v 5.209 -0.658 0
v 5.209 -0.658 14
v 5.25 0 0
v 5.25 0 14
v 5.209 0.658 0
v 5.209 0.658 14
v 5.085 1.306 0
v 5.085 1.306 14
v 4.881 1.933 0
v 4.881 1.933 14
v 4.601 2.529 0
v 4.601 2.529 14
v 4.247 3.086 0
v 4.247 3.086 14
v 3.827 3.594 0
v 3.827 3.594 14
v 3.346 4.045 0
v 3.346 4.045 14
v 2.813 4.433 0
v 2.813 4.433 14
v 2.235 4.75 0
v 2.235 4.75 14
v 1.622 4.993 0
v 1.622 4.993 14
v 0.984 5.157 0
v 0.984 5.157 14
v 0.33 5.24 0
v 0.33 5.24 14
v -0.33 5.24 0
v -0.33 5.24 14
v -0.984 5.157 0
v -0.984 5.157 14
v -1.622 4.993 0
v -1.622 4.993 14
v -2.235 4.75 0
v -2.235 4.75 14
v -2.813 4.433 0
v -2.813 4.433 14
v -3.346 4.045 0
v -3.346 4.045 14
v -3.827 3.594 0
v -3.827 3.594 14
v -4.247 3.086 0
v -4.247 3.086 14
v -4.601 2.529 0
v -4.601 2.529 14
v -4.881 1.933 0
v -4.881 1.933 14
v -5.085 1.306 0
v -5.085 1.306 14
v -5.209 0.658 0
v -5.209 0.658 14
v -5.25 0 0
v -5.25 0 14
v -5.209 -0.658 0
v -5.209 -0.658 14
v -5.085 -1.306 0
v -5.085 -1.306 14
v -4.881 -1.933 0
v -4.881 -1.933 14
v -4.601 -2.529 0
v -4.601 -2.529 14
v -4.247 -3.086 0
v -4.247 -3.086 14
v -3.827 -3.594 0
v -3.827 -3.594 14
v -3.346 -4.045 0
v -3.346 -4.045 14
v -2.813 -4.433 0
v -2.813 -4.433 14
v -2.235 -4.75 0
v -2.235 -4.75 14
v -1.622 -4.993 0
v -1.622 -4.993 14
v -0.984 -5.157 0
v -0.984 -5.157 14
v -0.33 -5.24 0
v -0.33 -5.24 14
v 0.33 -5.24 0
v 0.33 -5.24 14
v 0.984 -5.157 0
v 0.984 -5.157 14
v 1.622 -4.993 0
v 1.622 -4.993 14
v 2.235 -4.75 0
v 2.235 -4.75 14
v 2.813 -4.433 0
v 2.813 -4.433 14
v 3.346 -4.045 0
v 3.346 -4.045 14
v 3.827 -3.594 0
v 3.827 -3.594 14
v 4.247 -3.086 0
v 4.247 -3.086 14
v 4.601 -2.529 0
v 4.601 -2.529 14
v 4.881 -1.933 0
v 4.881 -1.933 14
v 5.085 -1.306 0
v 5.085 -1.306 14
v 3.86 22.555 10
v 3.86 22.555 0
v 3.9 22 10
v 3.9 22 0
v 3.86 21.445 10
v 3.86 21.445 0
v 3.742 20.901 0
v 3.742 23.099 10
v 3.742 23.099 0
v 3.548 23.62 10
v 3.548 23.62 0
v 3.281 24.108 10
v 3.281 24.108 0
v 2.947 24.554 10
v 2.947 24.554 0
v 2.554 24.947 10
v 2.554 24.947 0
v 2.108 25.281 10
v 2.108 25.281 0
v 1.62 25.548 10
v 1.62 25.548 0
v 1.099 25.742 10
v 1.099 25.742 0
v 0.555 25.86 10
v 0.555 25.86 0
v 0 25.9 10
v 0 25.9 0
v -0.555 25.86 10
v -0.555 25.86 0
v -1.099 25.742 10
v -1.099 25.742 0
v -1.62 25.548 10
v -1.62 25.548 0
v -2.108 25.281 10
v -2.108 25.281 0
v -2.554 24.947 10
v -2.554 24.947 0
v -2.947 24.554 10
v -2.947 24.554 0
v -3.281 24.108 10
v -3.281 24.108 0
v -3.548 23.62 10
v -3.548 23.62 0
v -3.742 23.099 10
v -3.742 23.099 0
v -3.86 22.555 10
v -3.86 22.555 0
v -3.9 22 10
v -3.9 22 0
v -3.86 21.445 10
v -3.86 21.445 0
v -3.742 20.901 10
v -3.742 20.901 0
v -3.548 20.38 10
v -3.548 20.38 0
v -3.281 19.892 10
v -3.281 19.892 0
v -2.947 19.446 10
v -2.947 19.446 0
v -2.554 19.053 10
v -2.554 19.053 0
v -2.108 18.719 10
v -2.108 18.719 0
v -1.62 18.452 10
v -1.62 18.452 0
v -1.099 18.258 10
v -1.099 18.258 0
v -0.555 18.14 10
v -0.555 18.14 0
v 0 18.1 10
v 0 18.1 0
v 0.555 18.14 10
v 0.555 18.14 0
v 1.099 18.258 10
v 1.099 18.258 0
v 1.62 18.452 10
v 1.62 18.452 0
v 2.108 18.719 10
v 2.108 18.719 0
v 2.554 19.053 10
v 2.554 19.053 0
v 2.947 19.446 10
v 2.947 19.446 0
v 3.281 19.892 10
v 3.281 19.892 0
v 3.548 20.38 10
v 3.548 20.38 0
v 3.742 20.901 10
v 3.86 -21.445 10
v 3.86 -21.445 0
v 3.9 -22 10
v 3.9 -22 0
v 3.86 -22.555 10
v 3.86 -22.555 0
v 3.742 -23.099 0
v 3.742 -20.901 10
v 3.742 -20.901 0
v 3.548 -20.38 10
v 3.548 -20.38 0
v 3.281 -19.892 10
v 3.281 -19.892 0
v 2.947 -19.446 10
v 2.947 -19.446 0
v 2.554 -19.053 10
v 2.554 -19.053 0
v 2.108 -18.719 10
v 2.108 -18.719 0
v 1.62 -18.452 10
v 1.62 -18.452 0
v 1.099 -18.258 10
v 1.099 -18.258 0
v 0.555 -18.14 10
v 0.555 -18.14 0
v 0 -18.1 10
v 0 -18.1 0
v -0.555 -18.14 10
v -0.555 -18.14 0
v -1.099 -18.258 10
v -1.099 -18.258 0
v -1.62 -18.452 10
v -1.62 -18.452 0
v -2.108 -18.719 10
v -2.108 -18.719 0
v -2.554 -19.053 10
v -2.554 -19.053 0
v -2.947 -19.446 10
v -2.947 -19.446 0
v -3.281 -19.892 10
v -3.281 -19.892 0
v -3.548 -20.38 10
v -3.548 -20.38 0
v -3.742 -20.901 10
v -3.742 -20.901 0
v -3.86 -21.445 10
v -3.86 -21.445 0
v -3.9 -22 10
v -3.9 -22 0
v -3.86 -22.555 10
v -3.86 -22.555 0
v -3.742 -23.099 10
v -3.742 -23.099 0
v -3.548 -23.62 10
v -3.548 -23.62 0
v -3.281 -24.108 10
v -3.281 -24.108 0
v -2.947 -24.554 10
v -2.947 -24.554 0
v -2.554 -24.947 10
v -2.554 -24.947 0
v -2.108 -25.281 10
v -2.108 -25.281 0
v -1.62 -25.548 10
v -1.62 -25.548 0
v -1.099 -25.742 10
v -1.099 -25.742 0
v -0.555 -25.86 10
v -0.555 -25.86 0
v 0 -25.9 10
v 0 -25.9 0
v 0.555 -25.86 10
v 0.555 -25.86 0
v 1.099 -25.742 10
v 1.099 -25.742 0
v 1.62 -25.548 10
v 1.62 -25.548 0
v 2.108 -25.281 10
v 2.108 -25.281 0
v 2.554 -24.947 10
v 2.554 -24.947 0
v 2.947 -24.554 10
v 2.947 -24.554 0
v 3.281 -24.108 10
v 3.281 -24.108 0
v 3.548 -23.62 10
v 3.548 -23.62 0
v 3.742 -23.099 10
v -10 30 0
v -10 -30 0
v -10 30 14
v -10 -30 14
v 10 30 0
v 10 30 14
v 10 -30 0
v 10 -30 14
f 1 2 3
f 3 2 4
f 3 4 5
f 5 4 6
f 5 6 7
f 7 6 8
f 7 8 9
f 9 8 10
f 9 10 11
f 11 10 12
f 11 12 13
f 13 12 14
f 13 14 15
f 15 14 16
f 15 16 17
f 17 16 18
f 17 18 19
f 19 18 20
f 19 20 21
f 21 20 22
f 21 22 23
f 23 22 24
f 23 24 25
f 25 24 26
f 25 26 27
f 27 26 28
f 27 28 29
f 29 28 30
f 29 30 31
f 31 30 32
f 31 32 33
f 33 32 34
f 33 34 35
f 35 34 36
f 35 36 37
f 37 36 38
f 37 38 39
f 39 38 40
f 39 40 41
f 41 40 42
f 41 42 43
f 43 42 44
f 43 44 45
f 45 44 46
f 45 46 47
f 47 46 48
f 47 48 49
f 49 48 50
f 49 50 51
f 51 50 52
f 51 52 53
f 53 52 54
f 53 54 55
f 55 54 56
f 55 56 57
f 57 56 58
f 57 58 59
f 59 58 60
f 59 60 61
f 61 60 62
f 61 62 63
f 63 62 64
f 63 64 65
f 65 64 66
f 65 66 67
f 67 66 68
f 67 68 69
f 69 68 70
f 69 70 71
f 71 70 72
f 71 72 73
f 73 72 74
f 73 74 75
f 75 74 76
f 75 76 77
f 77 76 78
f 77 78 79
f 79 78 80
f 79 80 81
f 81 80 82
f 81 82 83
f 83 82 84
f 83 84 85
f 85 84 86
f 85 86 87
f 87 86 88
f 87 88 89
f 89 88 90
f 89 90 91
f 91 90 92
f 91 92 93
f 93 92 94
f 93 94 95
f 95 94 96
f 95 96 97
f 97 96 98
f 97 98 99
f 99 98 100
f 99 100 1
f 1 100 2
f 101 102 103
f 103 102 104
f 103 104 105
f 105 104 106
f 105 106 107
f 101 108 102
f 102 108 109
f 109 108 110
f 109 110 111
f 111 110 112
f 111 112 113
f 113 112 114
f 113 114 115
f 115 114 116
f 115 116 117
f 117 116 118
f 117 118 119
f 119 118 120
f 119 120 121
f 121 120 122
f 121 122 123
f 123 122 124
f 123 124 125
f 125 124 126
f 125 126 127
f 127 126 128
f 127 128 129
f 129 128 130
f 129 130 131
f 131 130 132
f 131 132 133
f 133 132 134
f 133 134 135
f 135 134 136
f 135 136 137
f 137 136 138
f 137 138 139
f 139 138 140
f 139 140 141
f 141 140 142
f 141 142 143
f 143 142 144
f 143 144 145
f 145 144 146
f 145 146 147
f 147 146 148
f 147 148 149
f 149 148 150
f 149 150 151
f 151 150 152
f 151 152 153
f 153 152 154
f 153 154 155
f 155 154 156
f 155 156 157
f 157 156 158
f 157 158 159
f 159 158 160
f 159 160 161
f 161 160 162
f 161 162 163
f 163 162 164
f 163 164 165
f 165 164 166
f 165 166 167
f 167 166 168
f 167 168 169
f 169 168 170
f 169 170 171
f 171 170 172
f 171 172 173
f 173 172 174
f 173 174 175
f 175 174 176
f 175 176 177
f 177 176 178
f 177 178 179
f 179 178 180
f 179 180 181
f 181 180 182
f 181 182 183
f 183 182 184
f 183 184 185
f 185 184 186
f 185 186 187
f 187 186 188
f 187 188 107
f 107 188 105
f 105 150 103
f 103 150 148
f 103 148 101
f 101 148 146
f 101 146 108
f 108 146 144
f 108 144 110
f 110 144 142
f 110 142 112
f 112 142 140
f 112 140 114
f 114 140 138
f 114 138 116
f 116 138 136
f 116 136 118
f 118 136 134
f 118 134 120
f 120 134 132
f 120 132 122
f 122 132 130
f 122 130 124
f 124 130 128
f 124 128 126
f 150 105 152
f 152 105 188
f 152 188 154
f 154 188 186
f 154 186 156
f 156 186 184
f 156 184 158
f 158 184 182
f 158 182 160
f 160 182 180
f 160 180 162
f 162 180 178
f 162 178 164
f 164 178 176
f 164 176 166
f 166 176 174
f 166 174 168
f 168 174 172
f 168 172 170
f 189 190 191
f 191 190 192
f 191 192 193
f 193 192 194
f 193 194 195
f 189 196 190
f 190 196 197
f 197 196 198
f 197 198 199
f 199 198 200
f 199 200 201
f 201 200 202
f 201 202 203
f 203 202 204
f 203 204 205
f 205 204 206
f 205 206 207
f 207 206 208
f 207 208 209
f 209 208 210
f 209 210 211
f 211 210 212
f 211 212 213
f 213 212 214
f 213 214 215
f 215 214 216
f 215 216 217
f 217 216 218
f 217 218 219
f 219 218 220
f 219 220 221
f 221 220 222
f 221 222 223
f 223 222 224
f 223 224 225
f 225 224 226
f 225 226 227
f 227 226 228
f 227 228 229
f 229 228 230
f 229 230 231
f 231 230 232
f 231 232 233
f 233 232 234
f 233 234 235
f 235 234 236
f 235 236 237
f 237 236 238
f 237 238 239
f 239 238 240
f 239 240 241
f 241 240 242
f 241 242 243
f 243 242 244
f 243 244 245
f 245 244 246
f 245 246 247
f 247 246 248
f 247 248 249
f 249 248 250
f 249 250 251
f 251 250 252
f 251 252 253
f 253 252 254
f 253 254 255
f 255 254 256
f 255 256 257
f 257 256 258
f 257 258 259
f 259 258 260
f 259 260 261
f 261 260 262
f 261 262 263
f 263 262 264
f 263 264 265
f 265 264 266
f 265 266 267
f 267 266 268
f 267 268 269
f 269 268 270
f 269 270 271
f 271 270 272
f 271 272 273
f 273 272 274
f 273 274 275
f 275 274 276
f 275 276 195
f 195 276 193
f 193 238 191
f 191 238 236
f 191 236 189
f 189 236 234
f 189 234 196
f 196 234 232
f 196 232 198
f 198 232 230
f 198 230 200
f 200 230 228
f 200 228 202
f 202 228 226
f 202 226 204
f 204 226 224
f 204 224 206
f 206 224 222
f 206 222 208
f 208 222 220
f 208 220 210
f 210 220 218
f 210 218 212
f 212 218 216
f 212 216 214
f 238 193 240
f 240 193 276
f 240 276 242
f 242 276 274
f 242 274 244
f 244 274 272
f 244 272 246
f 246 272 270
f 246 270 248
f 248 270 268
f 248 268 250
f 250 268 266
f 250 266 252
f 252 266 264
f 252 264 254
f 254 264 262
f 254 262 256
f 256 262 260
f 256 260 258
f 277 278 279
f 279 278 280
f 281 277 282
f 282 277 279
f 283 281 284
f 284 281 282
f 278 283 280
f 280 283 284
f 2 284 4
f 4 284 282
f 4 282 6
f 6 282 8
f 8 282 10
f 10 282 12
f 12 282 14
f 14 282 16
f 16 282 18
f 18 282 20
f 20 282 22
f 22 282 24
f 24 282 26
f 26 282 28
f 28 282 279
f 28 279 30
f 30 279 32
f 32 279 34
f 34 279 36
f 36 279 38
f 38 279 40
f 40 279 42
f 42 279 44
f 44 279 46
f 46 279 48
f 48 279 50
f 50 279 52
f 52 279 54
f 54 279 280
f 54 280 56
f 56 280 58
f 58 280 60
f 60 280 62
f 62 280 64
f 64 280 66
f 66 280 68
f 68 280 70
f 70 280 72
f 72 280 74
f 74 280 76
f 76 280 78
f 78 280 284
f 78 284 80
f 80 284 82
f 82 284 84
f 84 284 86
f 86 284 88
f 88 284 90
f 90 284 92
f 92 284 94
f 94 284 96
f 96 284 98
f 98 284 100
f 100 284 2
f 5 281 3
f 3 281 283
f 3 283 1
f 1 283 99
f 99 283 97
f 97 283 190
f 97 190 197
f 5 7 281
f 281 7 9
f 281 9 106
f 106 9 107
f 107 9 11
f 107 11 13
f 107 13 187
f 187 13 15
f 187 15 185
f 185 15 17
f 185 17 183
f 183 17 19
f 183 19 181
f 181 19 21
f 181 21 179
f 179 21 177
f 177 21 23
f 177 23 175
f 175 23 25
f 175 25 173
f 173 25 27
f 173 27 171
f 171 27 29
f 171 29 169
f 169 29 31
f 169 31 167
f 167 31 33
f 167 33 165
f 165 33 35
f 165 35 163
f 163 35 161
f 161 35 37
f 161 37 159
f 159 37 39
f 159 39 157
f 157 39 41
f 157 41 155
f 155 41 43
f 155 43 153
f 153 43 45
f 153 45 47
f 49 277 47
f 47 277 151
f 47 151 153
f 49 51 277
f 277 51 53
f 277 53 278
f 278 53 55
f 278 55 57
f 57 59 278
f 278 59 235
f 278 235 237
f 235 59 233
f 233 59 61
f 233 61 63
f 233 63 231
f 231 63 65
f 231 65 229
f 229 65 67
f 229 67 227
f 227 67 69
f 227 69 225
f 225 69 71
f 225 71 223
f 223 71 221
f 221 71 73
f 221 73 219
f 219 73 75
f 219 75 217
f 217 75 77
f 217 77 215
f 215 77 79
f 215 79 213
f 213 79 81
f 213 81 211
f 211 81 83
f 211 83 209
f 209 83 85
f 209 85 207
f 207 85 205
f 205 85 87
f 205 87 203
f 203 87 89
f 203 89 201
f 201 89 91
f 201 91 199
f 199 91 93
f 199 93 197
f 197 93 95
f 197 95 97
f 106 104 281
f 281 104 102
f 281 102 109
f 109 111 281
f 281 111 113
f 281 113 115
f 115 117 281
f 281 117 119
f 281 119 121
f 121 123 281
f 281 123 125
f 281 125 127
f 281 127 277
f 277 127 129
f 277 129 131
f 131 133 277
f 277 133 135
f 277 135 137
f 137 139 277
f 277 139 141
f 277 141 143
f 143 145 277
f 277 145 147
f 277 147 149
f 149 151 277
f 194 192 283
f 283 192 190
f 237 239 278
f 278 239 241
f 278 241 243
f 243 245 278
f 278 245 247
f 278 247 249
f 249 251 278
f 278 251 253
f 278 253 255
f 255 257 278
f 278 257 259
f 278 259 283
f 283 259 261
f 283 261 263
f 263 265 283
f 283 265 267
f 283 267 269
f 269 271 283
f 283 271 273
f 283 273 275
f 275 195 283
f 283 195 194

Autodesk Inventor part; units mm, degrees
ref_plane "YZ Plane" through (0, 0, 0) normal (1, 0, 0) x (0, 1, 0)
ref_plane "XZ Plane" through (0, 0, 0) normal (0, 1, 0) x (-1, 0, 0)
sketch "Skizze1" plane through (0, 0, 0) normal (0, 0, 1) x (1, 0, 0)
  line L0 (-10, -30) -> (10, -30)
  line L1 (10, -30) -> (10, 30)
  line L2 (10, 30) -> (-10, 30)
  line L3 (-10, 30) -> (-10, -30)
extrude "Extrusion1" add sketch "Skizze1" along normal blind 14
sketch "Skizze2" plane through (0, 0, 0) normal (0, 0, 1) x (1, 0, 0)
  circle A0 centre (0, -22) radius 3.9
extrude "Extrusion2" cut sketch "Skizze2" along normal blind 10
sketch "Skizze3" plane through (0, 0, 0) normal (0, 0, 1) x (1, 0, 0)
  circle A0 centre (0, 22) radius 3.9
extrude "Extrusion3" cut sketch "Skizze3" along normal blind 10
ref_plane "Arbeitsebene1" through (0, 0, 14) normal (0, 0, 1) x (1, 0, 0)
sketch "Skizze4" plane through (0, 0, 14) normal (0, 0, 1) x (1, 0, 0)
  circle A0 centre (0, 0) radius 5.25
extrude "Extrusion4" cut sketch "Skizze4" against normal blind 14.2
properties part number "Kopf_Bruecke"
